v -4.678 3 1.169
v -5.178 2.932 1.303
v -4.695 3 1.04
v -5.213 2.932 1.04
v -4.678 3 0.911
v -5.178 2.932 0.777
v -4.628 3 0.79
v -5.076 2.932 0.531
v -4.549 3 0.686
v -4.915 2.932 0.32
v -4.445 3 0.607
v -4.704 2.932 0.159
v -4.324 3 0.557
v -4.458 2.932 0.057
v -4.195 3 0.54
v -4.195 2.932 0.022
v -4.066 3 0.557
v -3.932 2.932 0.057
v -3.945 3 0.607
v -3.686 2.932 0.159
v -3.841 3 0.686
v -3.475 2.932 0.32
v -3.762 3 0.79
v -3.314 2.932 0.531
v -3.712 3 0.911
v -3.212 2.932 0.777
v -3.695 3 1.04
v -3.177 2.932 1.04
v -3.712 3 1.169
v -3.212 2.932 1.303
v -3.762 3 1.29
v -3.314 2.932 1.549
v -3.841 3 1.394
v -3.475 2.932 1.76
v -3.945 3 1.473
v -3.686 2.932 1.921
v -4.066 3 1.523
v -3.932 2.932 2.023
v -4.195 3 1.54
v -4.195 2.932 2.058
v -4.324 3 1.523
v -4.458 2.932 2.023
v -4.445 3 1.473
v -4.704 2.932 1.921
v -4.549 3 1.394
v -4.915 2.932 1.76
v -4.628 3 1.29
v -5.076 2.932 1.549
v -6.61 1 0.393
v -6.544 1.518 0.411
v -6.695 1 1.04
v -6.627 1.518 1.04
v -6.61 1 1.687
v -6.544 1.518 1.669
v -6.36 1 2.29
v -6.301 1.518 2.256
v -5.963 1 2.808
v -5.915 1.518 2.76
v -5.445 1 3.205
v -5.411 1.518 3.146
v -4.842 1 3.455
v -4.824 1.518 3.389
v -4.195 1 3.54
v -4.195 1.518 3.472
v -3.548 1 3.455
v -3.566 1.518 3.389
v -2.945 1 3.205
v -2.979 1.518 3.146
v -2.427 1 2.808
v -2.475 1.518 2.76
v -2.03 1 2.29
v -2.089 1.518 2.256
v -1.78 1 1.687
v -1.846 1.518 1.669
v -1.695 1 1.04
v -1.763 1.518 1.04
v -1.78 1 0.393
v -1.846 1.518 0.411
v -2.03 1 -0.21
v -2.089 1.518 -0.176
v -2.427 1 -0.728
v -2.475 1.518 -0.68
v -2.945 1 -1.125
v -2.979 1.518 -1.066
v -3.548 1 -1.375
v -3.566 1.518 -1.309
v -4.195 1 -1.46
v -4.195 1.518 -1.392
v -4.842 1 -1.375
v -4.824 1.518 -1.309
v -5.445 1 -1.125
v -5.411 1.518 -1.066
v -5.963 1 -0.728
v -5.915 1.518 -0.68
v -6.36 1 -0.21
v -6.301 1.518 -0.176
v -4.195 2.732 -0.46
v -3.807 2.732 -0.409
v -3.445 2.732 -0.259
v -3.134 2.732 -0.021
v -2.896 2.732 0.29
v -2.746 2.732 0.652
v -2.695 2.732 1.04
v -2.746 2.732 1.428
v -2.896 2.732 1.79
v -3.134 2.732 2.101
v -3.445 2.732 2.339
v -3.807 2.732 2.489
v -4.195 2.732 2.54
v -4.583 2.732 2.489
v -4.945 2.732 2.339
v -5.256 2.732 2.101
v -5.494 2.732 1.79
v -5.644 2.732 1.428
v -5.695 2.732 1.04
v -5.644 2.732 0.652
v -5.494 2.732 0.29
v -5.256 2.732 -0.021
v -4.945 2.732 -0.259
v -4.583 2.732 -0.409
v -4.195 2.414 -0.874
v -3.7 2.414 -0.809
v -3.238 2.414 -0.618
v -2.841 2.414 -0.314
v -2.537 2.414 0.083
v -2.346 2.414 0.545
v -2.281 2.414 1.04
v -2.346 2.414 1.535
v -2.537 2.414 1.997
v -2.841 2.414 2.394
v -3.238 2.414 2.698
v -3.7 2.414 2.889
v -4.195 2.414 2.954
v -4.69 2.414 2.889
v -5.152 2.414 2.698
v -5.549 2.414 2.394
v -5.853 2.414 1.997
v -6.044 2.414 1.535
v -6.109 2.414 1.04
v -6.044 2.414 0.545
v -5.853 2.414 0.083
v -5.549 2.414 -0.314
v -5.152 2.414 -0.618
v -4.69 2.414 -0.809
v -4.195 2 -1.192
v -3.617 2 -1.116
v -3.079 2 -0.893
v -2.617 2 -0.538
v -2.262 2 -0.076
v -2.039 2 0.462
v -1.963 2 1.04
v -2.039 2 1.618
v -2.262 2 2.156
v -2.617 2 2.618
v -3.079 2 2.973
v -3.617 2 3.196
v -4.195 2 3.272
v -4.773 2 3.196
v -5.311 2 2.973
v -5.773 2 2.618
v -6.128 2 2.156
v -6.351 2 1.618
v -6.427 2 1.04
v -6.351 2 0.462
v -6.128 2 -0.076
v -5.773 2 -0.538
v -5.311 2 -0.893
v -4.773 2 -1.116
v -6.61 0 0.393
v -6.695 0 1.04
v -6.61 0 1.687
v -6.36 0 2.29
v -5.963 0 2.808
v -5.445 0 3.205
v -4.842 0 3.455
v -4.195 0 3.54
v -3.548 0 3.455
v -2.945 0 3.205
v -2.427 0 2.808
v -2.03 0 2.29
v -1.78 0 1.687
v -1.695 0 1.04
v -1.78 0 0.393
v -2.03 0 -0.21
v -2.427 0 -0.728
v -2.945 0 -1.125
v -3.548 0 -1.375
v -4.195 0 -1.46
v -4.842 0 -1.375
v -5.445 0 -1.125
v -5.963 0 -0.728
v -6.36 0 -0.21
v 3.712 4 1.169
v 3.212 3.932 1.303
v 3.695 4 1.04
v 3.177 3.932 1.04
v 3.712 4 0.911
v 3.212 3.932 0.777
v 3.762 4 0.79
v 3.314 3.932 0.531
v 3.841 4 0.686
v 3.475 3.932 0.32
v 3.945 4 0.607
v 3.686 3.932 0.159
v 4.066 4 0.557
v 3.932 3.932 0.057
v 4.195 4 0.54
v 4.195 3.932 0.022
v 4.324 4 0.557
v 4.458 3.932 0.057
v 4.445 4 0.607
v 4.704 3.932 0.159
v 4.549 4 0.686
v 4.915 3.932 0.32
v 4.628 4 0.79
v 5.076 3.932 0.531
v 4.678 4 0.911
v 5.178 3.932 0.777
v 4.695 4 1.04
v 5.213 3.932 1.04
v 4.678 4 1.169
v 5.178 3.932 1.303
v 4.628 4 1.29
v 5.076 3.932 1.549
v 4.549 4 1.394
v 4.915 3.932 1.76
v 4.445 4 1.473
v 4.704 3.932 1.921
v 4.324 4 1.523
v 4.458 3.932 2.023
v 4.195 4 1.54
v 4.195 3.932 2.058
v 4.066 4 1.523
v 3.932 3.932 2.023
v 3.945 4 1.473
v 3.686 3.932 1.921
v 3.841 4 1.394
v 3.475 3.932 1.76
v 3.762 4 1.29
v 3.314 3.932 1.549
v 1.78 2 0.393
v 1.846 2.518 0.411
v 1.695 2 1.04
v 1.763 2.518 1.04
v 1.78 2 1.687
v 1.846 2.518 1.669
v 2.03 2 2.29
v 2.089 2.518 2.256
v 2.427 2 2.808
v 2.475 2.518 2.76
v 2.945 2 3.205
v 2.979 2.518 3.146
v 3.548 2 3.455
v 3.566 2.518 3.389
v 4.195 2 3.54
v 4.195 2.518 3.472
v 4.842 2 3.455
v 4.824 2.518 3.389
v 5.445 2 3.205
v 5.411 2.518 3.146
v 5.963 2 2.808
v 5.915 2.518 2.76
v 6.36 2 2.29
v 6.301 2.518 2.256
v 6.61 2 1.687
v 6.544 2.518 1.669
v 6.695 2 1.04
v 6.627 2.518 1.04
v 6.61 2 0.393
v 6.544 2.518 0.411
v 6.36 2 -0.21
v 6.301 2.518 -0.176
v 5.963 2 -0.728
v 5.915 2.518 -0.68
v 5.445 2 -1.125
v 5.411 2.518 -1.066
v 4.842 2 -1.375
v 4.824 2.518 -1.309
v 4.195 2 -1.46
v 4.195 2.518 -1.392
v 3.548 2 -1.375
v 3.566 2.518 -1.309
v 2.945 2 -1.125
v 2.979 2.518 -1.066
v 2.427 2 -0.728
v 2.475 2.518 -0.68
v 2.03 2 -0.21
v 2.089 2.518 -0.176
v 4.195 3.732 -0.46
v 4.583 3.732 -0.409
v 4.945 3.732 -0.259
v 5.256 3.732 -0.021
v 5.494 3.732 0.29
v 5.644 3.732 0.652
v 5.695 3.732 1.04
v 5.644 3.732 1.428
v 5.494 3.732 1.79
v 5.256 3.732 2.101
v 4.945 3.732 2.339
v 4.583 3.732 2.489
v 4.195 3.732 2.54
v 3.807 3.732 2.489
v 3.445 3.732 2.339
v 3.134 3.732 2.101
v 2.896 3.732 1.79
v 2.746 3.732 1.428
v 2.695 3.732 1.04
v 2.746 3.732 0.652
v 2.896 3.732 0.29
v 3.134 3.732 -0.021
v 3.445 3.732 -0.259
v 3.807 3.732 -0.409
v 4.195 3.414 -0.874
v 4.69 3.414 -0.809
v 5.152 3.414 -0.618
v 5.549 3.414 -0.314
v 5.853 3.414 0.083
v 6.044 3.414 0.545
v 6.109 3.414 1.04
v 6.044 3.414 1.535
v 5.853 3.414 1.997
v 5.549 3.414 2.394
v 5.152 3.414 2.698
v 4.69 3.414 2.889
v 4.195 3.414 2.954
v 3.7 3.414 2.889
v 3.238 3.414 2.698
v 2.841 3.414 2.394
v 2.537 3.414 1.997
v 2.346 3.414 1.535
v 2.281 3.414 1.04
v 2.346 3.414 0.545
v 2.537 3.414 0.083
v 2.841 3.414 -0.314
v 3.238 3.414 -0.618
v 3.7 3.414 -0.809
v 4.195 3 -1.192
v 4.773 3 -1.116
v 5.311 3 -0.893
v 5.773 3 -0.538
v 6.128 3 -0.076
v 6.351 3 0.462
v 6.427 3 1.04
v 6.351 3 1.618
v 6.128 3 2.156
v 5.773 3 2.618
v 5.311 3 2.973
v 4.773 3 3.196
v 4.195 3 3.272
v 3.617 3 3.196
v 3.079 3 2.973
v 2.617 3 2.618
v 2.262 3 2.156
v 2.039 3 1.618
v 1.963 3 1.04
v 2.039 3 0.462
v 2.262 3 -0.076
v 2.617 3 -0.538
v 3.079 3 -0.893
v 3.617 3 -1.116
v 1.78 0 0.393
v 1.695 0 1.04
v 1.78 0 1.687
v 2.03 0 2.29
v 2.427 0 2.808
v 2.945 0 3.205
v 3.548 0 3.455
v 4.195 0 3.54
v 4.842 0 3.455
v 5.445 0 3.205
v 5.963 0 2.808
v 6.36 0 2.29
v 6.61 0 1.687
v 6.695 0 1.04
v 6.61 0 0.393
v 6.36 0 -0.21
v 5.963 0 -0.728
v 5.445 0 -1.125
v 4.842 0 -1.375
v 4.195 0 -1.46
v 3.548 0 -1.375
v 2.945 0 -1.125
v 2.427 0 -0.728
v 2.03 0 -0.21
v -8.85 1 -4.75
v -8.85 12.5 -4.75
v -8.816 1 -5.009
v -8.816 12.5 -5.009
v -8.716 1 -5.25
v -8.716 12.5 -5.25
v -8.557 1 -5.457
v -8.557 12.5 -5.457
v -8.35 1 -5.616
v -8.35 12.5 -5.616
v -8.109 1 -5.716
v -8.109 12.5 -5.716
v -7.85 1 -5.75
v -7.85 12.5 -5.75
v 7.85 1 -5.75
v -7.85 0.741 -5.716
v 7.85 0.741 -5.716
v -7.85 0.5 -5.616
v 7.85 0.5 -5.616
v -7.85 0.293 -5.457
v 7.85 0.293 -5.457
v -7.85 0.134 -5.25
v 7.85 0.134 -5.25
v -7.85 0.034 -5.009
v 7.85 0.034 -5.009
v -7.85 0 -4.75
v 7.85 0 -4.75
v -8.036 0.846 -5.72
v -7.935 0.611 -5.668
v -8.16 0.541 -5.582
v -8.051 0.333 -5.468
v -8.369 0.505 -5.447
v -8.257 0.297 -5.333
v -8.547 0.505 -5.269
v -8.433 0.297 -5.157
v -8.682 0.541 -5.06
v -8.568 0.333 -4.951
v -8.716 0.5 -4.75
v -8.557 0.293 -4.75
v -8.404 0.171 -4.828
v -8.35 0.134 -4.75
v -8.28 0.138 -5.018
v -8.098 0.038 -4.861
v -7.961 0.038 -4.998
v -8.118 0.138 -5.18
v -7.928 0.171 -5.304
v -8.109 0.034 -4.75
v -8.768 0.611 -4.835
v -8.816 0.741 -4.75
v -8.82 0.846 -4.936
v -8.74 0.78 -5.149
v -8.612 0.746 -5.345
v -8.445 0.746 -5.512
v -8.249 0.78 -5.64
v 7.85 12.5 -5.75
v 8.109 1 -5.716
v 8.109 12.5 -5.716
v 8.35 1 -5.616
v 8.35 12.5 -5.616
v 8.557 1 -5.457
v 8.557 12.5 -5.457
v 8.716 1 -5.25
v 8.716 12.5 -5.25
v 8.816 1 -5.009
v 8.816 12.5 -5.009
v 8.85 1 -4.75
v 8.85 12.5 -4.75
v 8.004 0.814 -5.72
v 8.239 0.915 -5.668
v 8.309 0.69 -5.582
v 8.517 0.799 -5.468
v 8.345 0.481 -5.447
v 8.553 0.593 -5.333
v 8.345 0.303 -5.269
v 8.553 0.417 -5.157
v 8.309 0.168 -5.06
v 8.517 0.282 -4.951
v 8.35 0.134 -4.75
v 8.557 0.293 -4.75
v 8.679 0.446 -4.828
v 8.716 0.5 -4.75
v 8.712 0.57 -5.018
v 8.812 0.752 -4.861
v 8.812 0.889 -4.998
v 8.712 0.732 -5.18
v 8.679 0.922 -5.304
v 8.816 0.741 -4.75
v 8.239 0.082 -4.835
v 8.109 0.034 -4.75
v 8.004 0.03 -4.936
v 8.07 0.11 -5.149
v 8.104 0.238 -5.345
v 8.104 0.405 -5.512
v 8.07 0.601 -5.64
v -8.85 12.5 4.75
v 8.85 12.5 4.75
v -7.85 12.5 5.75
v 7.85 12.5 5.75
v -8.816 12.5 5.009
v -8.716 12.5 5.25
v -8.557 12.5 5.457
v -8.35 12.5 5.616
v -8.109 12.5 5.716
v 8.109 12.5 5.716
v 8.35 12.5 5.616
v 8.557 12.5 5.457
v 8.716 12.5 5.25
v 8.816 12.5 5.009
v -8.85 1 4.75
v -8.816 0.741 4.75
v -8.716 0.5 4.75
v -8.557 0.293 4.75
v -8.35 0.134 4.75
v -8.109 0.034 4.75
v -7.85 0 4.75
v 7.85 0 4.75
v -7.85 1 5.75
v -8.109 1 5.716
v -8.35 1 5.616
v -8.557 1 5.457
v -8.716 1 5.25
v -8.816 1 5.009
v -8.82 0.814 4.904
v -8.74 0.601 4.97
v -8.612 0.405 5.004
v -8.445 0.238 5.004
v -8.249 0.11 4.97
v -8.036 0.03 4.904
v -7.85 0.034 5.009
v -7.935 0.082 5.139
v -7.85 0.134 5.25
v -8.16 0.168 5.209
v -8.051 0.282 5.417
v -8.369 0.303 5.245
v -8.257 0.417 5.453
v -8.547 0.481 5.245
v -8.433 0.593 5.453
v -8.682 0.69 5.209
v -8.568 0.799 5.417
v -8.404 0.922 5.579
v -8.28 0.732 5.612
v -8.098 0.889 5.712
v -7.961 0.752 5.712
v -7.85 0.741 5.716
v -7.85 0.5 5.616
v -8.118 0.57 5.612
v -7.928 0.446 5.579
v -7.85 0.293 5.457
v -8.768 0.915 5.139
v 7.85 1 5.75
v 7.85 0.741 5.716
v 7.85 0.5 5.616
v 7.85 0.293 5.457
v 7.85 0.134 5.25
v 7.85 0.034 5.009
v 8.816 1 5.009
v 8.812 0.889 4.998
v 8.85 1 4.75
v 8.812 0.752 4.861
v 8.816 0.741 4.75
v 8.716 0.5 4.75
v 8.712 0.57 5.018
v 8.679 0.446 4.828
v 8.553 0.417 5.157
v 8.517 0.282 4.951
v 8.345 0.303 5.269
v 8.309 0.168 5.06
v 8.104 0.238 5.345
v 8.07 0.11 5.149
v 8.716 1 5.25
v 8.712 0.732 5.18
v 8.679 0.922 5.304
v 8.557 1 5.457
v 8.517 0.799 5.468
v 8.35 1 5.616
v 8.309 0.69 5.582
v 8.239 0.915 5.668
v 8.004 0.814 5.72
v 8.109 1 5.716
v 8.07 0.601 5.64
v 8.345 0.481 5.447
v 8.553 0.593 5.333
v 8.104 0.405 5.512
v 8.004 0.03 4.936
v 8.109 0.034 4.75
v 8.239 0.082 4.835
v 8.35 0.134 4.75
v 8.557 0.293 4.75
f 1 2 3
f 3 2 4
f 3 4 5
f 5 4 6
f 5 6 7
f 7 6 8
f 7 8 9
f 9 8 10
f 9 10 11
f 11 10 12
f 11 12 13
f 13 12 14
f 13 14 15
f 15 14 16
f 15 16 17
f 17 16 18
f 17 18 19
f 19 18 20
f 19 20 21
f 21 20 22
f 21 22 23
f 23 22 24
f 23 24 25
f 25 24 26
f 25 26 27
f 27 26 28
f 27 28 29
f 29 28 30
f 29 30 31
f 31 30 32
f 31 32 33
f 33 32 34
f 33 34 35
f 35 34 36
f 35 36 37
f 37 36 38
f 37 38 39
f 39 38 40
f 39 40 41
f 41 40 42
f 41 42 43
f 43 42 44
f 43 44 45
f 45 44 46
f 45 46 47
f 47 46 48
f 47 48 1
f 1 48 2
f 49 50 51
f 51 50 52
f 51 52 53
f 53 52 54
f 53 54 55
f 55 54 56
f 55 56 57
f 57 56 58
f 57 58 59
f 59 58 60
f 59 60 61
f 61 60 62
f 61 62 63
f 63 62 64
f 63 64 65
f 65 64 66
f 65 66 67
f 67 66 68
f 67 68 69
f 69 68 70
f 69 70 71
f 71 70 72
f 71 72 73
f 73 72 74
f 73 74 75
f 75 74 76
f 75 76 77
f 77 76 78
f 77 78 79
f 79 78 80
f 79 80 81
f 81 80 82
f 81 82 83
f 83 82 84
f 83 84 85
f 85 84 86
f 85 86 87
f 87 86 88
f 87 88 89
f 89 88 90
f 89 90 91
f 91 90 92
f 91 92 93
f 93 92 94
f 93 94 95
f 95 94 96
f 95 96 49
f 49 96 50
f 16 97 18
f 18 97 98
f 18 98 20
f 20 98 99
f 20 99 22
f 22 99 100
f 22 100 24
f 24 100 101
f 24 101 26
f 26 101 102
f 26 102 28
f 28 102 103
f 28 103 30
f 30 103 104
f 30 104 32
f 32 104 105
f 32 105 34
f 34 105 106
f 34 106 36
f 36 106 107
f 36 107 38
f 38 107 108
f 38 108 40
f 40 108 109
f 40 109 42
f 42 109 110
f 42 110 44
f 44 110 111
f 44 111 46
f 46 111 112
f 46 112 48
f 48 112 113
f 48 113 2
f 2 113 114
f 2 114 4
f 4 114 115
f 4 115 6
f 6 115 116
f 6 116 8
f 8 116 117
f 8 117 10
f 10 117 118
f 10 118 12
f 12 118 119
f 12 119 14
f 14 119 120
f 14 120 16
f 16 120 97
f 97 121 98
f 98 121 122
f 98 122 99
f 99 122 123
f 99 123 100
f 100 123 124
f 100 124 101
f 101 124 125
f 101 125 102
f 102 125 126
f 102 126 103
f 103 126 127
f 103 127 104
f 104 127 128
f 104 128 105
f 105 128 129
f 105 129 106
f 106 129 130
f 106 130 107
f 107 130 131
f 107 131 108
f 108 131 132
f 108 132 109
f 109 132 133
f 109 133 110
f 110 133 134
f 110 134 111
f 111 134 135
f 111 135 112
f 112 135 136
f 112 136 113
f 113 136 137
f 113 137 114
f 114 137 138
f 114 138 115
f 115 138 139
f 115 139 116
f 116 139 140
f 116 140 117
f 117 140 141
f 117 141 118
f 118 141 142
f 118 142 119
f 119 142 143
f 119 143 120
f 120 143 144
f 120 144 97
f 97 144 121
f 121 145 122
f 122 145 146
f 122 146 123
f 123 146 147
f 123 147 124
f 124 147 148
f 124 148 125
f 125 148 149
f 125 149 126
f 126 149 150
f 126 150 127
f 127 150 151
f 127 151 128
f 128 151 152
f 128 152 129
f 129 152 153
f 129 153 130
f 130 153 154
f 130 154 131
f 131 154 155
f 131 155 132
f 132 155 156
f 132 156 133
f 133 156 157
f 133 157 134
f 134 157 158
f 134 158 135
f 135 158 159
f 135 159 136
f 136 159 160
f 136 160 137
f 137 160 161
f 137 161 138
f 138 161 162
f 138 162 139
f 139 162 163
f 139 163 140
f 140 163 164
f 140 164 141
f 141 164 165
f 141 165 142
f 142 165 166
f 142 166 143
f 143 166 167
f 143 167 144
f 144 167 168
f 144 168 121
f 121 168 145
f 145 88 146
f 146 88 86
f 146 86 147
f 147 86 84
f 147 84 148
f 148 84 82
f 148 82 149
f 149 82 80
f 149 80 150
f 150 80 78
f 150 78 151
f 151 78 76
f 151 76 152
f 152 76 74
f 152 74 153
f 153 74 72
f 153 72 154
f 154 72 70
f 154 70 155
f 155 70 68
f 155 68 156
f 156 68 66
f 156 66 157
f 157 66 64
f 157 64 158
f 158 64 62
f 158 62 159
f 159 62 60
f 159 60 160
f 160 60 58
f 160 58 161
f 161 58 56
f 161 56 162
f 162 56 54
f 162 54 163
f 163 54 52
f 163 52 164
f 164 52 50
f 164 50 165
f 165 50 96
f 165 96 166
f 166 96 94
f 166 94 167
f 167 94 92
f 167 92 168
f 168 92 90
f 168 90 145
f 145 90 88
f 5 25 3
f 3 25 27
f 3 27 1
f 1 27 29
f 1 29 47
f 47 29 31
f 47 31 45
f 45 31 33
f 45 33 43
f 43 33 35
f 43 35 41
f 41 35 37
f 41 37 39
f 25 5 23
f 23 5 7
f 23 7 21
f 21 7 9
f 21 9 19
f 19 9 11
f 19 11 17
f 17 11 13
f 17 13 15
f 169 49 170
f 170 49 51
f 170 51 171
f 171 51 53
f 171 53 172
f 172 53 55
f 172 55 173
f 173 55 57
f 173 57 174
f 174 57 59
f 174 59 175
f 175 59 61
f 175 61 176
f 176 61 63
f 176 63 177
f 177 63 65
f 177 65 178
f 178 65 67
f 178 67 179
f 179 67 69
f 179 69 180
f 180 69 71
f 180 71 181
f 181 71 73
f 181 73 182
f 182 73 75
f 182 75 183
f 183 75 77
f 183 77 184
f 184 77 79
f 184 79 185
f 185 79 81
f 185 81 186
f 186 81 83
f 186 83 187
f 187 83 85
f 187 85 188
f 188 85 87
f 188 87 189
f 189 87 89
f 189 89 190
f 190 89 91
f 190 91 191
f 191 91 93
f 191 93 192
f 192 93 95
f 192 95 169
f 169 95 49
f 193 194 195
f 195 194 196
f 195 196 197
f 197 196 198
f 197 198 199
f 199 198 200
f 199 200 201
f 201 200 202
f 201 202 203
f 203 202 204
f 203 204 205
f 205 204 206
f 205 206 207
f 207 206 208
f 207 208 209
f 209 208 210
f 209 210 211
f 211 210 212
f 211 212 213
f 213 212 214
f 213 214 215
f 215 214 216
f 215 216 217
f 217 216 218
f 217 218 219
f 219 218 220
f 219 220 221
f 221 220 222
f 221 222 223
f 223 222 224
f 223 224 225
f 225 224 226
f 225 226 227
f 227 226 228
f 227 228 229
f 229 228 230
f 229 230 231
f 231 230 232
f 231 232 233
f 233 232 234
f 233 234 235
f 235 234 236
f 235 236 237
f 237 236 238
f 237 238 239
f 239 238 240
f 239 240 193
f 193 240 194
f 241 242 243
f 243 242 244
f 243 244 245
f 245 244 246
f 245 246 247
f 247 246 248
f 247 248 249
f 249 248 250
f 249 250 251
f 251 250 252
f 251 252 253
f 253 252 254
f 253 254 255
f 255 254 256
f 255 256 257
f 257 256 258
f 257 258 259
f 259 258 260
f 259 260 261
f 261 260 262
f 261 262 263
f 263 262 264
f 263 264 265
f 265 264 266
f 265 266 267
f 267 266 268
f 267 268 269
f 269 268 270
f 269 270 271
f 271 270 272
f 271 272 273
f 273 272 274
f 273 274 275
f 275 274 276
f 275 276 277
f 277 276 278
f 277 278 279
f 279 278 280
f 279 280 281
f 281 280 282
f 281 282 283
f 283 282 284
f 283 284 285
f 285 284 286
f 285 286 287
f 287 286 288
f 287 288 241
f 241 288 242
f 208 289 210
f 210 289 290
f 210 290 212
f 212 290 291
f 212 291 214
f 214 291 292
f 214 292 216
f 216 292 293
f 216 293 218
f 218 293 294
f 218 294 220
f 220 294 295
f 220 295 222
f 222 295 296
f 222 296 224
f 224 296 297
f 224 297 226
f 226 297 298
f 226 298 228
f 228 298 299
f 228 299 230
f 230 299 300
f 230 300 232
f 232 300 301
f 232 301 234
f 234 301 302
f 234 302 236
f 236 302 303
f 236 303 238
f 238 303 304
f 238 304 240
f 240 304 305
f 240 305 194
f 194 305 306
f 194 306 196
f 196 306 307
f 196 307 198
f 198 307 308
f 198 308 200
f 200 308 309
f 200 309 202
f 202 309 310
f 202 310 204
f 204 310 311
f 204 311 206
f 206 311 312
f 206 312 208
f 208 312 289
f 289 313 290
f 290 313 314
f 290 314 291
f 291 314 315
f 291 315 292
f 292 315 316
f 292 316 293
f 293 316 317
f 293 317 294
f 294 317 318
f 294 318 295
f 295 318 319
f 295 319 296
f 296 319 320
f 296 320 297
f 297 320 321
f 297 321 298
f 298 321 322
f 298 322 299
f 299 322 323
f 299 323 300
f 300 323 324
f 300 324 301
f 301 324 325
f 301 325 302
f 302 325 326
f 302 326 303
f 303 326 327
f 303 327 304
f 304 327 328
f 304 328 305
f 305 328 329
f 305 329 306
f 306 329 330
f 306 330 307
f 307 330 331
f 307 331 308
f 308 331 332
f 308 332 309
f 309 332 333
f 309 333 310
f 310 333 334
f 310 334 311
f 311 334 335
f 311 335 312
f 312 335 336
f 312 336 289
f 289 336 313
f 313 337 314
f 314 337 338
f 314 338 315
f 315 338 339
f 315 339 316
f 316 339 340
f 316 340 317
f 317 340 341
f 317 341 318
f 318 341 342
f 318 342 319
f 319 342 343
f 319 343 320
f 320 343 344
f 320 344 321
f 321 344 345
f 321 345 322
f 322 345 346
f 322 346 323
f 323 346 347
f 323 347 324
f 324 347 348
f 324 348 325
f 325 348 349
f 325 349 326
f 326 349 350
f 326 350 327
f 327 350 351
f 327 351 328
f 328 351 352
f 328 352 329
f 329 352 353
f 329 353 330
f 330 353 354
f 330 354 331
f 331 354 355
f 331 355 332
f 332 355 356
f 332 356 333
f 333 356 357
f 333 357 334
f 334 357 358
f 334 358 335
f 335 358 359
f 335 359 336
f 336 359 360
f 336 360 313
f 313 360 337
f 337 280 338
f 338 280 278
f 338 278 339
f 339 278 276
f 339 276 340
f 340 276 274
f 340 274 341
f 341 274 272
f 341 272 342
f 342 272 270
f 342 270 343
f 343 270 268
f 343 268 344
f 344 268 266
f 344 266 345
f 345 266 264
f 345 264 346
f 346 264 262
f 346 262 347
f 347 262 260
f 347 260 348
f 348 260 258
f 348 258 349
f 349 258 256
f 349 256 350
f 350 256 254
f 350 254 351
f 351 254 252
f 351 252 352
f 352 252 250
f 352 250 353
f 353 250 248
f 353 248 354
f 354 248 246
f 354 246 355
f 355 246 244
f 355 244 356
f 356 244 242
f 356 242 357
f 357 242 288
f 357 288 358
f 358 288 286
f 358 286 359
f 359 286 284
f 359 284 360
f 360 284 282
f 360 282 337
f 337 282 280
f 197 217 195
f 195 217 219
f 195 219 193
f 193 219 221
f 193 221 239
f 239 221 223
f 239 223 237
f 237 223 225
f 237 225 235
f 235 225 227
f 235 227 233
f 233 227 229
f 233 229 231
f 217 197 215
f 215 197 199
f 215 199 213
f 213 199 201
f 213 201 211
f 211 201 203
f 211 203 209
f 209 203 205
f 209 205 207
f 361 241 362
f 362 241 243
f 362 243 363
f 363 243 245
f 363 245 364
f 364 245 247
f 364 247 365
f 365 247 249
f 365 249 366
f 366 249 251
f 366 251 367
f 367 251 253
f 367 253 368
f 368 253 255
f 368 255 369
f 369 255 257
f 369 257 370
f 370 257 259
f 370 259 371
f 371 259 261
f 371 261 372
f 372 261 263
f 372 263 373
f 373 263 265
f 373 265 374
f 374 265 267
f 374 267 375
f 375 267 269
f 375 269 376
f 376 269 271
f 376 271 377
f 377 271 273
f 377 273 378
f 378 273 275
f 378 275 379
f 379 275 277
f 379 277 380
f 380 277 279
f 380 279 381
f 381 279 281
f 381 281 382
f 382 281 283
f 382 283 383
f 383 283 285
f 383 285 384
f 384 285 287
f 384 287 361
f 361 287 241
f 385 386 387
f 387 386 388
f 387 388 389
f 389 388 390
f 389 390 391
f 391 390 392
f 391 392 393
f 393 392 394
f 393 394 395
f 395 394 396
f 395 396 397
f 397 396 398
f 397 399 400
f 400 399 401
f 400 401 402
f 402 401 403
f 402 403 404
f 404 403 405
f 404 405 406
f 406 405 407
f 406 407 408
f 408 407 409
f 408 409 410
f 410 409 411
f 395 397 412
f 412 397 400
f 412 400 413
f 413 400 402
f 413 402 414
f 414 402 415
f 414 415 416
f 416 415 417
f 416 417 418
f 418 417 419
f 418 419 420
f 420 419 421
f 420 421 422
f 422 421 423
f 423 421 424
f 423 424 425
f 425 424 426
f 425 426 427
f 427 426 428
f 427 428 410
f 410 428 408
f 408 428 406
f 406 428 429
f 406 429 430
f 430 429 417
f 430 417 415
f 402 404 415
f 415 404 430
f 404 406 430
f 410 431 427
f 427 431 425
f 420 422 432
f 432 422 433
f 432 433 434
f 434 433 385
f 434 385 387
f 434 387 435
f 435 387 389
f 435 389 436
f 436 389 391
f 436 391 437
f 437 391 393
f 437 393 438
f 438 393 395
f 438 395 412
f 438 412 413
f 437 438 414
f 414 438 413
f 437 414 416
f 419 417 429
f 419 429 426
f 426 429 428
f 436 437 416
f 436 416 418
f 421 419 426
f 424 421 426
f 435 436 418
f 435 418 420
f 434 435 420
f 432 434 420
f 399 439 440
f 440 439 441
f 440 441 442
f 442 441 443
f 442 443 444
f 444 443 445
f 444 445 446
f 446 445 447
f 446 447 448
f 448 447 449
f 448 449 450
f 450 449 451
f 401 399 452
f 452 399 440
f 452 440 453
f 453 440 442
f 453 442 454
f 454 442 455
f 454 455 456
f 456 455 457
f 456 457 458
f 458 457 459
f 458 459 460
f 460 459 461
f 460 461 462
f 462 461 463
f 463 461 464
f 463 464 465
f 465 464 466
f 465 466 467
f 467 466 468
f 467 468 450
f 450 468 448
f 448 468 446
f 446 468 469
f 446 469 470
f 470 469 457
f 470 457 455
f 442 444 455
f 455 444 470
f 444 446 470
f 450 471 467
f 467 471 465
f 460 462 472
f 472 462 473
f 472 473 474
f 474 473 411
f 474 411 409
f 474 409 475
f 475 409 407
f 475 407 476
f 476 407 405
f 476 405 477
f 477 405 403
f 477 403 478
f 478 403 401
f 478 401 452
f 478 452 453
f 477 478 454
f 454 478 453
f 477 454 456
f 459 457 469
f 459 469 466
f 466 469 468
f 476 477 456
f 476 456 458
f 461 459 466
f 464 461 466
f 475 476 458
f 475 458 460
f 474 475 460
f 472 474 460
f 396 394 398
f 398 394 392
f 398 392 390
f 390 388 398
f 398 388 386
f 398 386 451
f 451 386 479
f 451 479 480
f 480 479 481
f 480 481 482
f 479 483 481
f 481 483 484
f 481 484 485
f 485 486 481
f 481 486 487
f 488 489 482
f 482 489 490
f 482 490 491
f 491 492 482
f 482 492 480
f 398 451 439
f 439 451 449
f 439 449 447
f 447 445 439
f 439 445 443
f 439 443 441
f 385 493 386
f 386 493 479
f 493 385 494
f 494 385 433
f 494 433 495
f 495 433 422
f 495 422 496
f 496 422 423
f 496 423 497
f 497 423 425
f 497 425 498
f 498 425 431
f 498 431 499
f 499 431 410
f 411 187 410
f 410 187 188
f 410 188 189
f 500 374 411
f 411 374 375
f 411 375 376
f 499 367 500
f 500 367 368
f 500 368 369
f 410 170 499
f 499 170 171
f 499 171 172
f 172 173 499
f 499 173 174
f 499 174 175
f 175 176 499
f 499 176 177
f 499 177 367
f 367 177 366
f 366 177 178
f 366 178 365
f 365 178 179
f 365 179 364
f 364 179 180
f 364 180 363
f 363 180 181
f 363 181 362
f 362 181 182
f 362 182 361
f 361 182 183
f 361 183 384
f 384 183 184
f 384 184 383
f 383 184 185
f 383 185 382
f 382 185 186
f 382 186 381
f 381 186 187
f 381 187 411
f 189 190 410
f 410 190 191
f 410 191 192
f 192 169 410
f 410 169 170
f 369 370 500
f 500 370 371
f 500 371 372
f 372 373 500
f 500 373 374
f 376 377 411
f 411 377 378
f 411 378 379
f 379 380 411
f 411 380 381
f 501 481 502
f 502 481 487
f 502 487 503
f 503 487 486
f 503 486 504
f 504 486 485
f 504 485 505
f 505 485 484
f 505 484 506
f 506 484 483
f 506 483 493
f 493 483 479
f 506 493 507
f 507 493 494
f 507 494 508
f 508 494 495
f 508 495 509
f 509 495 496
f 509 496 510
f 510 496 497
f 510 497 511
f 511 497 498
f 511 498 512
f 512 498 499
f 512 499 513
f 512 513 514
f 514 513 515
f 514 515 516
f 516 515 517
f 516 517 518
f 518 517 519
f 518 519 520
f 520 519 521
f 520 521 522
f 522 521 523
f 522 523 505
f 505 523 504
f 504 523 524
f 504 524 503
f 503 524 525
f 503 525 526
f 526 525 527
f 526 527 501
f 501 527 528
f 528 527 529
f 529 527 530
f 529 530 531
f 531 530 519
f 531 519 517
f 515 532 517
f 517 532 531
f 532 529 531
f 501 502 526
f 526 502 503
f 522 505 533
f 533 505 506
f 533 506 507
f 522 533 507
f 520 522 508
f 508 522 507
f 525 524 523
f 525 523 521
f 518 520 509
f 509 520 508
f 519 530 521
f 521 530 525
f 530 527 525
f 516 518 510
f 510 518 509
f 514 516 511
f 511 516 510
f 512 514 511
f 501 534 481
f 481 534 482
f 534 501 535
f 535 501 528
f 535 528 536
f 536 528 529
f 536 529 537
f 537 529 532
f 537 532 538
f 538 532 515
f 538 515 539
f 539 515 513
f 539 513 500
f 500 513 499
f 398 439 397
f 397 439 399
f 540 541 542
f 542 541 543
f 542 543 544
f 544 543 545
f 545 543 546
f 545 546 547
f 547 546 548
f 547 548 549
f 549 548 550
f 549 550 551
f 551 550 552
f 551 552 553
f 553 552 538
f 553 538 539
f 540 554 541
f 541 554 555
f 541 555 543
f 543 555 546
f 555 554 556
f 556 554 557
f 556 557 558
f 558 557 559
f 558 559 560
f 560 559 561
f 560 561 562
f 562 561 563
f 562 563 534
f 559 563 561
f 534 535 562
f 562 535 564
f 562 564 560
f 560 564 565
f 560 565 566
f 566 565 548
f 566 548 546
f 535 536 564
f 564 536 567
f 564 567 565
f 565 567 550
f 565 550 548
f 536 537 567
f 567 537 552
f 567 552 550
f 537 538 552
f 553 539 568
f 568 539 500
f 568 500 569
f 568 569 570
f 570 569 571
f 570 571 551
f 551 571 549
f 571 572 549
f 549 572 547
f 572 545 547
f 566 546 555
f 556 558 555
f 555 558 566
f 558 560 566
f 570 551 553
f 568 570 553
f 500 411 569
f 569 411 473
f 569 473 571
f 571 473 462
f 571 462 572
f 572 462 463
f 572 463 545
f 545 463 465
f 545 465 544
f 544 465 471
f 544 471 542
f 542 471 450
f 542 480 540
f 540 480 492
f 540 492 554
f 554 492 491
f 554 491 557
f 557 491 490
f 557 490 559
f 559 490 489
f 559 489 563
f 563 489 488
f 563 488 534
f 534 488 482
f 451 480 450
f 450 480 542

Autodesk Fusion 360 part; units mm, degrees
sketch "Boceto1" plane through (0, 0, 0) normal (0, 1, 0) x (1, 0, 0)
  line L0 (-8.85, 0) -> (-8.85, -5.75)
  line L1 (-8.85, -5.75) -> (8.85, -5.75)
  line L2 (8.85, -5.75) -> (8.85, 5.75)
  line L3 (8.85, 5.75) -> (-8.85, 5.75)
  line L4 (-8.85, 5.75) -> (-8.85, 0)
  dimension "d1" = 8.85
  dimension "d2" = 5.75
  dimension "d3" = 17.7
  dimension "d4" = 11.5
  dimension "d5" = 17.7
extrude "Extruir1" add sketch "Boceto1" along normal blind 12.5
sketch "Boceto2" plane through (0, 0, 0) normal (0, -1, 0) x (1, 0, 0)
  line L0 (-8.85, 5.75) -> (-8.85, -5.75)
  line L1 (-8.85, -5.75) -> (8.85, -5.75)
  line L2 (8.85, -5.75) -> (8.85, 5.75)
  line L3 (8.85, 5.75) -> (-8.85, 5.75)
  line L4 (8.85, -5.75) -> (4.195, -5.75)
  line L5 (4.195, -5.75) -> (-4.195, -5.75)
  line L6 (4.195, -5.75) -> (4.195, 1.04)
  line L7 (-4.195, -5.75) -> (-4.195, 1.04)
  circle A0 centre (4.195, 1.04) radius 2.5
  circle A1 centre (-4.195, 1.04) radius 2.5
  dimension "d8" = 4.655
  dimension "d9" = 8.39
  dimension "d10" = 6.79
  dimension "d11" = 6.79
  dimension "d12" = 5
  dimension "d13" = 5
extrude "Extruir2" cut sketch "Boceto2" against normal blind 7 contours A0
extrude "Extruir3" cut sketch "Boceto2" against normal blind 7 contours A1
fillet "Empalme1" radius 1 3 edges at (8.85, 6.25, 5.75) (0, 0, 5.75) (8.85, 0, 0)
fillet "Empalme2" radius 1 3 edges at (-8.85, 0, -0.5) (-8.85, 0.2929, 5.4571) (-8.85, 6.75, 5.75)
fillet "Empalme3" radius 1 5 edges at (8.85, 6.75, -5.75) (8.5571, 0.2929, -5.75) (0, 0, -5.75) (-8.5571, 0.2929, -5.75) (-8.85, 6.75, -5.75)
extrude "Extruir4" add 1 faces at (4.9913, 7, -0.2658) along direction (0, -1, 0) blind 3
extrude "Extruir5" add 1 faces at (-4.4262, 7, 0.3911) along direction (0, -1, 0) blind 4
fillet "Empalme4" radius 2 1 faces at (4.9913, 4, -0.2658)
fillet "Empalme5" radius 2 1 faces at (-4.4262, 3, 0.3911)
